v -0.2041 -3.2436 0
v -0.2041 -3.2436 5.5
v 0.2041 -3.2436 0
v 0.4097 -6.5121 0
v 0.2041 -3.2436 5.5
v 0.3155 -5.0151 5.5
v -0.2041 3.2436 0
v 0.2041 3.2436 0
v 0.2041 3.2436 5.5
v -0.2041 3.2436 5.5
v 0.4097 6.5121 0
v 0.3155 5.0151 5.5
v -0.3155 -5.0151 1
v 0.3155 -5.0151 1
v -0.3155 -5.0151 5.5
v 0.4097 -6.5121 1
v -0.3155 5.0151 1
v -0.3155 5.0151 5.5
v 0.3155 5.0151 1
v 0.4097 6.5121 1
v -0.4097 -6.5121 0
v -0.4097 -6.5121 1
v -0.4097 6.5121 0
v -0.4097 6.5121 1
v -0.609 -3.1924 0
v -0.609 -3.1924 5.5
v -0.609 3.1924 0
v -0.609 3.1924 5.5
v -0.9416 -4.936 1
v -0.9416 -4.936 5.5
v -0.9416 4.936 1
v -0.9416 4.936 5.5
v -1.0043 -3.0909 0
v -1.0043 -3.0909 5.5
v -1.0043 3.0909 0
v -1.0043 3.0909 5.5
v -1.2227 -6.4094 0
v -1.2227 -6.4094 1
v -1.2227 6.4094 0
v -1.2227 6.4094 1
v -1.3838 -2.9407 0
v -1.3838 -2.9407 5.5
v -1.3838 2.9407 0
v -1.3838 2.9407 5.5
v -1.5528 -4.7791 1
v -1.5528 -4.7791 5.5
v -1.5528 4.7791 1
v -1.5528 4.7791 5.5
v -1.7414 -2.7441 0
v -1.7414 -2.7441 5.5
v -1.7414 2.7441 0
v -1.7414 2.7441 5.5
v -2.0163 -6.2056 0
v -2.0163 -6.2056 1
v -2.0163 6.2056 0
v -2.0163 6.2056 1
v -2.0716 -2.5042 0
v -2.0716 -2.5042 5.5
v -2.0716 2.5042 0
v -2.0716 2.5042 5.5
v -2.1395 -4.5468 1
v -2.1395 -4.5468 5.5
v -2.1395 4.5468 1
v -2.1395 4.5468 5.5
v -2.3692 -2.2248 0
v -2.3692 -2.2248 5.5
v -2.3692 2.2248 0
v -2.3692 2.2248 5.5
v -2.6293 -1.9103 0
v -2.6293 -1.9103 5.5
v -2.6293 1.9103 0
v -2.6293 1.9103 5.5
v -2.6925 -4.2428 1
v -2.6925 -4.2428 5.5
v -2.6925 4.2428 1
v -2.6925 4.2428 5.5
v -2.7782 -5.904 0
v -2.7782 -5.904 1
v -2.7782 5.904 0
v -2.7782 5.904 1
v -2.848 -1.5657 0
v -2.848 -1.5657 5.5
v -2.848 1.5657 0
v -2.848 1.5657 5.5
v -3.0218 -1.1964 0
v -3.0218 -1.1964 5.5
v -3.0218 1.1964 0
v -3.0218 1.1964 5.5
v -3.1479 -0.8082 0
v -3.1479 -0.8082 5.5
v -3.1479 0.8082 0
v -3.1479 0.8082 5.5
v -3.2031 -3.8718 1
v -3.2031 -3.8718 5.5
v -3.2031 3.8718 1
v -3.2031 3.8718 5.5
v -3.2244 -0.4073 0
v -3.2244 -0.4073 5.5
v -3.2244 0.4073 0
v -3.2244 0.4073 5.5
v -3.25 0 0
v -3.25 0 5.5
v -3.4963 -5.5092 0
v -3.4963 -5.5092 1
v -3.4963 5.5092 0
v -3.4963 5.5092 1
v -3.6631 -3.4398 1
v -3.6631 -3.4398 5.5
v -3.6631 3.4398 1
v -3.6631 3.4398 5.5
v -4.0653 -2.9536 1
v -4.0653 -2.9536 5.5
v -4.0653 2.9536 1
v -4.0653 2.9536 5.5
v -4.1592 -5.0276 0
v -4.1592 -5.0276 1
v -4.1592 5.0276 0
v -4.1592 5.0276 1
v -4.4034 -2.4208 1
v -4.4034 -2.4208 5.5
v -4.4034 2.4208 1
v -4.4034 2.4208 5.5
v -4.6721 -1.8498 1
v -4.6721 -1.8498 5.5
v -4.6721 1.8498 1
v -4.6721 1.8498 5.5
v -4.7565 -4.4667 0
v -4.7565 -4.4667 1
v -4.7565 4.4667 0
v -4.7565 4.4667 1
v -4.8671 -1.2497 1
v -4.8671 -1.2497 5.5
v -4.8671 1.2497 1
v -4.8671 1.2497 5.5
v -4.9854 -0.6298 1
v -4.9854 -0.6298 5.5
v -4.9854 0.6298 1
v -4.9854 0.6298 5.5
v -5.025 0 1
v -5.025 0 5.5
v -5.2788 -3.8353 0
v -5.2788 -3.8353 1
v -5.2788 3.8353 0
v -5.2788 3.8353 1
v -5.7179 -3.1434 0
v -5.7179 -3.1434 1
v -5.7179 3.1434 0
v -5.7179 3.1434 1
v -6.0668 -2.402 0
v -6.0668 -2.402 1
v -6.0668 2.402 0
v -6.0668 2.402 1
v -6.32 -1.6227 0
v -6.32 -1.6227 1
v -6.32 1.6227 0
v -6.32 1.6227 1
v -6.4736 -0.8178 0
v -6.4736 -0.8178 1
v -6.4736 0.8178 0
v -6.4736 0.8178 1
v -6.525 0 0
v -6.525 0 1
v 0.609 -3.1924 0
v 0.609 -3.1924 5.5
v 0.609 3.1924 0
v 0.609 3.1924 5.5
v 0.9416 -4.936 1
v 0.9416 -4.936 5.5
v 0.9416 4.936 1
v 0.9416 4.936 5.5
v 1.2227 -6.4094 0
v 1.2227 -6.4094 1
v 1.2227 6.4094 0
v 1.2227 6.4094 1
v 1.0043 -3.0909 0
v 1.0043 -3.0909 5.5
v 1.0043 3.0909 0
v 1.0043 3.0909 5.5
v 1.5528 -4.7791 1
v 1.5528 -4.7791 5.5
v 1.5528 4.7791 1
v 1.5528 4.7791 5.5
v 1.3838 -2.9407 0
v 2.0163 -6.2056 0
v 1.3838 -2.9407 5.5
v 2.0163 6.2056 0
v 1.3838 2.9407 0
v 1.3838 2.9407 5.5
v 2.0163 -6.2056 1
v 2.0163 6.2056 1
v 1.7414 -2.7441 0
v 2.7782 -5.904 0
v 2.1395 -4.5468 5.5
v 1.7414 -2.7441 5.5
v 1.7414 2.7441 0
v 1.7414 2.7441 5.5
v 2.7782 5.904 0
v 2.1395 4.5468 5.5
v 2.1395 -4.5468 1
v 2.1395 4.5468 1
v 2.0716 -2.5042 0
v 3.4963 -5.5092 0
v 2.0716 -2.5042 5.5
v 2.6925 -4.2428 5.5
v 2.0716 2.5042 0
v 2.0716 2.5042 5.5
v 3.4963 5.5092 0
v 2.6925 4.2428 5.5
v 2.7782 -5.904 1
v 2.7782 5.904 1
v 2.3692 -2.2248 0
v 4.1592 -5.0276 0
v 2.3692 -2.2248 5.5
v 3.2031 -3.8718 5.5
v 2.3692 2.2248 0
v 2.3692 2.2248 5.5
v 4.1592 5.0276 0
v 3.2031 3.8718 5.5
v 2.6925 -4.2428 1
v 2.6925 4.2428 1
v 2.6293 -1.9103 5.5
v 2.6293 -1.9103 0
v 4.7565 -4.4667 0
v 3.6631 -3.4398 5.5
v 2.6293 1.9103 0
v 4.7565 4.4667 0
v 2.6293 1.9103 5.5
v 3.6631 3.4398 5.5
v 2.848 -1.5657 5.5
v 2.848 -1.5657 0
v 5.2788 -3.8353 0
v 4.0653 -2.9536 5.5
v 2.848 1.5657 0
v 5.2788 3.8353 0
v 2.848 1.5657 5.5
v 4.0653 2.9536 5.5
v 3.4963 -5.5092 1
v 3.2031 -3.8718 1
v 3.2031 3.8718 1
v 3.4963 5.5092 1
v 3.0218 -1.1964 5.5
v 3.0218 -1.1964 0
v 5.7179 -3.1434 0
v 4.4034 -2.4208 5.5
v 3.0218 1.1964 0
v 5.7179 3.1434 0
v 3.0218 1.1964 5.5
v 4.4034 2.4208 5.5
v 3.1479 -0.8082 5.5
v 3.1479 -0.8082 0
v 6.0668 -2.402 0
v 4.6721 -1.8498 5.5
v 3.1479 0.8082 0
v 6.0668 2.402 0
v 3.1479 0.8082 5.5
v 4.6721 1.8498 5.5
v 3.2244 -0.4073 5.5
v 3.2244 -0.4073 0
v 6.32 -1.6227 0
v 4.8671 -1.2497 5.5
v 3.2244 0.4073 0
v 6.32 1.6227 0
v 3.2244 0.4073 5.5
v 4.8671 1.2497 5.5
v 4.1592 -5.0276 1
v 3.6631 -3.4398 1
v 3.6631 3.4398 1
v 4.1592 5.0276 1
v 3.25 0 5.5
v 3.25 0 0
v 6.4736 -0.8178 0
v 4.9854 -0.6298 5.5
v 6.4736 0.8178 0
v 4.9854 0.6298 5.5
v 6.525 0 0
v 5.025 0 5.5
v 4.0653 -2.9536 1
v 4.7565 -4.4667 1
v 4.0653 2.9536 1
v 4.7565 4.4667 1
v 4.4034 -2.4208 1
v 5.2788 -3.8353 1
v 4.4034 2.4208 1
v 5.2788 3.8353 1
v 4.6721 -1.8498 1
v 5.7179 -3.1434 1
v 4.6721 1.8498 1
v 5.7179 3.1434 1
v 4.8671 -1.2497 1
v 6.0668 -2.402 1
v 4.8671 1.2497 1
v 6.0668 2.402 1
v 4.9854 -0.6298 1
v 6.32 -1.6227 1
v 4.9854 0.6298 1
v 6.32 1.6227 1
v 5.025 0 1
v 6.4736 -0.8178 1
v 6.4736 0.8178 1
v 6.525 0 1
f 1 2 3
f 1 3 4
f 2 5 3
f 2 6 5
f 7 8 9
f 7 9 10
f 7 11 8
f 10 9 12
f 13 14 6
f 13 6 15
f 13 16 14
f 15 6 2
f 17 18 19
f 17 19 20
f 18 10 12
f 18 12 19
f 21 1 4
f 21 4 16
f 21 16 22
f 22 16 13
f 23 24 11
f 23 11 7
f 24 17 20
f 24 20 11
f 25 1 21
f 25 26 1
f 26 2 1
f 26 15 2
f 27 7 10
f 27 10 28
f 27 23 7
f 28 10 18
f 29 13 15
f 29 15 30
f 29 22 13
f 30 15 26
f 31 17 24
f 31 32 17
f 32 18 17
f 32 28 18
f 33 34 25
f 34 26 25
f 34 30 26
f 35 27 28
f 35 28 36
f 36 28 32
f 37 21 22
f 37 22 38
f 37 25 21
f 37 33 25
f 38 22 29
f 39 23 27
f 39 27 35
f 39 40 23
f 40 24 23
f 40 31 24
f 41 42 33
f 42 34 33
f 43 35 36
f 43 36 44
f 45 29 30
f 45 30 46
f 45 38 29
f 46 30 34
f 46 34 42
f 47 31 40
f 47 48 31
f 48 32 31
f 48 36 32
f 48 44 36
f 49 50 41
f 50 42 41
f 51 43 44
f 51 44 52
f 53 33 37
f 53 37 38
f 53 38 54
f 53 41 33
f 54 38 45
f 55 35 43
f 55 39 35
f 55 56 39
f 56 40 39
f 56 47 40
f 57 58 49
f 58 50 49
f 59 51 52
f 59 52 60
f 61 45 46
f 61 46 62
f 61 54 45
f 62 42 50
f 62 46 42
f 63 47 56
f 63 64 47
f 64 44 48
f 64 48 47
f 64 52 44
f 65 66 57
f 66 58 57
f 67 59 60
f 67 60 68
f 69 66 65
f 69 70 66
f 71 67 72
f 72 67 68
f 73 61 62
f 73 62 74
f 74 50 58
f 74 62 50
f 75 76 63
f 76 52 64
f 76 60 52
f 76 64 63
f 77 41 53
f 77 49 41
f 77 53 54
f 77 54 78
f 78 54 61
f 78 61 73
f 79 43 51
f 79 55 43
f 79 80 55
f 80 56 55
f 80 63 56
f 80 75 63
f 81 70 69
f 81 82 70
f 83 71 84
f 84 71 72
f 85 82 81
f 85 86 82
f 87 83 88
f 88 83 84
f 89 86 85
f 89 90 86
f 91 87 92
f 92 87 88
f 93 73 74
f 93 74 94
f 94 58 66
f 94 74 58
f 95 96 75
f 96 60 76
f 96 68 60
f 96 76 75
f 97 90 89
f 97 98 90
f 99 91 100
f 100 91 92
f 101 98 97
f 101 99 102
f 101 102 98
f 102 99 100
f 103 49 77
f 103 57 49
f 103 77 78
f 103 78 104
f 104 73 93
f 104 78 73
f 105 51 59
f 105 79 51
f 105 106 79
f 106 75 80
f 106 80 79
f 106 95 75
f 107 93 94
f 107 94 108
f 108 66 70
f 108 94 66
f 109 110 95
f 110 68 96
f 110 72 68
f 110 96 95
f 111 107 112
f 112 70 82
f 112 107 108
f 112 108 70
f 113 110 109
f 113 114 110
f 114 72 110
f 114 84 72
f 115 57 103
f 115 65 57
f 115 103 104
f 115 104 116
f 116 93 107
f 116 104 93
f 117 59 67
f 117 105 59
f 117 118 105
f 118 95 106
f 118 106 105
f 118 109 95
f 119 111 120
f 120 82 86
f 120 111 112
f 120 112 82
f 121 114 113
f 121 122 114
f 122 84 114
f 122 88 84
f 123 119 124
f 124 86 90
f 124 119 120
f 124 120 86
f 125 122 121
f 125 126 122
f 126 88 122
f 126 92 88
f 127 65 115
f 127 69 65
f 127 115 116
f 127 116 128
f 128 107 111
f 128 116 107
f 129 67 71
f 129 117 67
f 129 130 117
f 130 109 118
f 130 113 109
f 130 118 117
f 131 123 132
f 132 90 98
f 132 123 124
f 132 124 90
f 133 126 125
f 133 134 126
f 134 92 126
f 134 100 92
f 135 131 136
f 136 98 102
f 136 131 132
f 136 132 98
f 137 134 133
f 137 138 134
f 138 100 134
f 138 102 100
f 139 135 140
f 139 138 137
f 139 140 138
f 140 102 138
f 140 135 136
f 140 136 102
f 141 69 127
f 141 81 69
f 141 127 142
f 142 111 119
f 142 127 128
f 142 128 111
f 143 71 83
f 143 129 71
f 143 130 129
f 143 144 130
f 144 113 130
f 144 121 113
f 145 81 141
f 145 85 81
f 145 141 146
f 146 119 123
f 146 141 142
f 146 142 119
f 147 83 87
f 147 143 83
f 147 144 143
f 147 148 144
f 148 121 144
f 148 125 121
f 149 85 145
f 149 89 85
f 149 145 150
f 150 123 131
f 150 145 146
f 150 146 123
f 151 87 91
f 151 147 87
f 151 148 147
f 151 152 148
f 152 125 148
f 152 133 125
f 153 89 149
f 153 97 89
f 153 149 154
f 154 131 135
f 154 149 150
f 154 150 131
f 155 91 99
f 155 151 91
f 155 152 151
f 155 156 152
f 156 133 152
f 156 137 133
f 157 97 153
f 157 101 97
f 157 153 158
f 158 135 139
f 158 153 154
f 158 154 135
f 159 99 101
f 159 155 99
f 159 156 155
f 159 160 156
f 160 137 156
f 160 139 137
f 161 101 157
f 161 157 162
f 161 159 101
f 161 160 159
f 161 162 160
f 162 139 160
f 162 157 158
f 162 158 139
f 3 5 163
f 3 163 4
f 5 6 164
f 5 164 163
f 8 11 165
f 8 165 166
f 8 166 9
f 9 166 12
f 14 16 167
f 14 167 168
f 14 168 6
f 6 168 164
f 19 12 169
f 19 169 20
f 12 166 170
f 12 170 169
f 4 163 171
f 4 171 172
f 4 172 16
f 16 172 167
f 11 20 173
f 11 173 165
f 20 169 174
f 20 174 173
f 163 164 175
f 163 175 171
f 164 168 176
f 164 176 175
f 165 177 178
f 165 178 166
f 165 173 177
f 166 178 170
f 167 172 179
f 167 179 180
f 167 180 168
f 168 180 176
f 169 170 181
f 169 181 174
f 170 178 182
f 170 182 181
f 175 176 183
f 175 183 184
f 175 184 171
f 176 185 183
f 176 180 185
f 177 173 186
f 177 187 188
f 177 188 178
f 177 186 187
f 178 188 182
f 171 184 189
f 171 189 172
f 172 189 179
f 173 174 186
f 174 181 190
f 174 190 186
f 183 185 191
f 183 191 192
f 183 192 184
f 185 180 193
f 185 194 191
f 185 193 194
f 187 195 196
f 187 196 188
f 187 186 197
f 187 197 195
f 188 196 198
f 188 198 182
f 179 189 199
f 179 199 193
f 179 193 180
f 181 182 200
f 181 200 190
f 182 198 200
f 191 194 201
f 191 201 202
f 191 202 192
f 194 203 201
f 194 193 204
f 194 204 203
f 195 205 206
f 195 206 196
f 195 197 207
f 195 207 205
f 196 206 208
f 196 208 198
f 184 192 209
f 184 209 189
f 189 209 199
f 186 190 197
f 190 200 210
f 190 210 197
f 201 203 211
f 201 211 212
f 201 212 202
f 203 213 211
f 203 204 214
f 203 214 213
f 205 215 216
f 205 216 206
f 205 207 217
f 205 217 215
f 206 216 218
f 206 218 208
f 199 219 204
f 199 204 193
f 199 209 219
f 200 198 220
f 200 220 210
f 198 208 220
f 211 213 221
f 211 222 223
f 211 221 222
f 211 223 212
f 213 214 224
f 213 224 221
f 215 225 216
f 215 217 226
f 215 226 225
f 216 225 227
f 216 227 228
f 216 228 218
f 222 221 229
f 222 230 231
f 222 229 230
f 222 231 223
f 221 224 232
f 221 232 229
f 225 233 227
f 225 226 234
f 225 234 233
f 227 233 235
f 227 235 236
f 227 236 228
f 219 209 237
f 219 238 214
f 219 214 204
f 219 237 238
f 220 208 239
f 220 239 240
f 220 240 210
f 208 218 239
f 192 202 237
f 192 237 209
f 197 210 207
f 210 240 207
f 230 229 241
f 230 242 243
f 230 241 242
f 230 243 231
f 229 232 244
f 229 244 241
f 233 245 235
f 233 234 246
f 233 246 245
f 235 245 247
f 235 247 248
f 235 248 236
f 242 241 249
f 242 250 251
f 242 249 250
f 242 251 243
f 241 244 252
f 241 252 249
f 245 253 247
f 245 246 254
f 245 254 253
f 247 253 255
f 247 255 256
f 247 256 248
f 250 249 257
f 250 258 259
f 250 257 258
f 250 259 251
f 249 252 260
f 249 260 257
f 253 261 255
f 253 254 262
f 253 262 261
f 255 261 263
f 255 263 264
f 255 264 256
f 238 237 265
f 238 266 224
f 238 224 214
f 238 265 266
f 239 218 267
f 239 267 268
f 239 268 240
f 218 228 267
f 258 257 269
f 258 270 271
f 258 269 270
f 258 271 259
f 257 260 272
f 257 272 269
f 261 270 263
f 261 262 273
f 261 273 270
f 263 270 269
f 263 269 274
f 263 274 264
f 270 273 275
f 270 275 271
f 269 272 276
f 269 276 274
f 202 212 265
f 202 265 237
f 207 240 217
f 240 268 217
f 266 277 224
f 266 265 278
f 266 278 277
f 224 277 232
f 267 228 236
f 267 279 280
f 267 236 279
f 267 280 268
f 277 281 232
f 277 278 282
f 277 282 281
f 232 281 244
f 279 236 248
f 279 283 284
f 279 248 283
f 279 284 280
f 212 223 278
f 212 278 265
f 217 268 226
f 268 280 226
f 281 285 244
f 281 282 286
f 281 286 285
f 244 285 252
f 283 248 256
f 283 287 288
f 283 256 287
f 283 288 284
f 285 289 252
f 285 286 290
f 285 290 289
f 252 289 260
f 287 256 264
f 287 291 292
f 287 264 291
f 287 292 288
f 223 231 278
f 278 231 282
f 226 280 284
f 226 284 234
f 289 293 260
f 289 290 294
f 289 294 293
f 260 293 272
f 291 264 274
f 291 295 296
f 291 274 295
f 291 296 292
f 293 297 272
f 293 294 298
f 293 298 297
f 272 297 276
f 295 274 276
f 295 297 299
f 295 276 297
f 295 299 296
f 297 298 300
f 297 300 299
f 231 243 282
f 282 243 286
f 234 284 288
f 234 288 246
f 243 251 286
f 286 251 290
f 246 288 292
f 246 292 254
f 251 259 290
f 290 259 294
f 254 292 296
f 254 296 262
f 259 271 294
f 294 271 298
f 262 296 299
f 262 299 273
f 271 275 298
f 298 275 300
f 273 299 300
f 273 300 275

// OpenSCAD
include <../Parameters.scad>

module 888_3016(draft = true){

    inner_diameter = M6_screw_diameter;
    outer_diameter = bearing_efsm_10_d + 3;
    rim_height = 1;
    bearng_ball_height = 9/2;
    difference(){
        union(){
            cylinder(h = rim_height, d = outer_diameter, $fn = 50);
            translate([0,0,rim_height])
                cylinder(h = bearng_ball_height, d = bearing_efsm_10_d, $fn = 50);
        }
        cylinder(h = 2 * bearng_ball_height , d = inner_diameter, $fn = 50);
    }
}
888_3016();
